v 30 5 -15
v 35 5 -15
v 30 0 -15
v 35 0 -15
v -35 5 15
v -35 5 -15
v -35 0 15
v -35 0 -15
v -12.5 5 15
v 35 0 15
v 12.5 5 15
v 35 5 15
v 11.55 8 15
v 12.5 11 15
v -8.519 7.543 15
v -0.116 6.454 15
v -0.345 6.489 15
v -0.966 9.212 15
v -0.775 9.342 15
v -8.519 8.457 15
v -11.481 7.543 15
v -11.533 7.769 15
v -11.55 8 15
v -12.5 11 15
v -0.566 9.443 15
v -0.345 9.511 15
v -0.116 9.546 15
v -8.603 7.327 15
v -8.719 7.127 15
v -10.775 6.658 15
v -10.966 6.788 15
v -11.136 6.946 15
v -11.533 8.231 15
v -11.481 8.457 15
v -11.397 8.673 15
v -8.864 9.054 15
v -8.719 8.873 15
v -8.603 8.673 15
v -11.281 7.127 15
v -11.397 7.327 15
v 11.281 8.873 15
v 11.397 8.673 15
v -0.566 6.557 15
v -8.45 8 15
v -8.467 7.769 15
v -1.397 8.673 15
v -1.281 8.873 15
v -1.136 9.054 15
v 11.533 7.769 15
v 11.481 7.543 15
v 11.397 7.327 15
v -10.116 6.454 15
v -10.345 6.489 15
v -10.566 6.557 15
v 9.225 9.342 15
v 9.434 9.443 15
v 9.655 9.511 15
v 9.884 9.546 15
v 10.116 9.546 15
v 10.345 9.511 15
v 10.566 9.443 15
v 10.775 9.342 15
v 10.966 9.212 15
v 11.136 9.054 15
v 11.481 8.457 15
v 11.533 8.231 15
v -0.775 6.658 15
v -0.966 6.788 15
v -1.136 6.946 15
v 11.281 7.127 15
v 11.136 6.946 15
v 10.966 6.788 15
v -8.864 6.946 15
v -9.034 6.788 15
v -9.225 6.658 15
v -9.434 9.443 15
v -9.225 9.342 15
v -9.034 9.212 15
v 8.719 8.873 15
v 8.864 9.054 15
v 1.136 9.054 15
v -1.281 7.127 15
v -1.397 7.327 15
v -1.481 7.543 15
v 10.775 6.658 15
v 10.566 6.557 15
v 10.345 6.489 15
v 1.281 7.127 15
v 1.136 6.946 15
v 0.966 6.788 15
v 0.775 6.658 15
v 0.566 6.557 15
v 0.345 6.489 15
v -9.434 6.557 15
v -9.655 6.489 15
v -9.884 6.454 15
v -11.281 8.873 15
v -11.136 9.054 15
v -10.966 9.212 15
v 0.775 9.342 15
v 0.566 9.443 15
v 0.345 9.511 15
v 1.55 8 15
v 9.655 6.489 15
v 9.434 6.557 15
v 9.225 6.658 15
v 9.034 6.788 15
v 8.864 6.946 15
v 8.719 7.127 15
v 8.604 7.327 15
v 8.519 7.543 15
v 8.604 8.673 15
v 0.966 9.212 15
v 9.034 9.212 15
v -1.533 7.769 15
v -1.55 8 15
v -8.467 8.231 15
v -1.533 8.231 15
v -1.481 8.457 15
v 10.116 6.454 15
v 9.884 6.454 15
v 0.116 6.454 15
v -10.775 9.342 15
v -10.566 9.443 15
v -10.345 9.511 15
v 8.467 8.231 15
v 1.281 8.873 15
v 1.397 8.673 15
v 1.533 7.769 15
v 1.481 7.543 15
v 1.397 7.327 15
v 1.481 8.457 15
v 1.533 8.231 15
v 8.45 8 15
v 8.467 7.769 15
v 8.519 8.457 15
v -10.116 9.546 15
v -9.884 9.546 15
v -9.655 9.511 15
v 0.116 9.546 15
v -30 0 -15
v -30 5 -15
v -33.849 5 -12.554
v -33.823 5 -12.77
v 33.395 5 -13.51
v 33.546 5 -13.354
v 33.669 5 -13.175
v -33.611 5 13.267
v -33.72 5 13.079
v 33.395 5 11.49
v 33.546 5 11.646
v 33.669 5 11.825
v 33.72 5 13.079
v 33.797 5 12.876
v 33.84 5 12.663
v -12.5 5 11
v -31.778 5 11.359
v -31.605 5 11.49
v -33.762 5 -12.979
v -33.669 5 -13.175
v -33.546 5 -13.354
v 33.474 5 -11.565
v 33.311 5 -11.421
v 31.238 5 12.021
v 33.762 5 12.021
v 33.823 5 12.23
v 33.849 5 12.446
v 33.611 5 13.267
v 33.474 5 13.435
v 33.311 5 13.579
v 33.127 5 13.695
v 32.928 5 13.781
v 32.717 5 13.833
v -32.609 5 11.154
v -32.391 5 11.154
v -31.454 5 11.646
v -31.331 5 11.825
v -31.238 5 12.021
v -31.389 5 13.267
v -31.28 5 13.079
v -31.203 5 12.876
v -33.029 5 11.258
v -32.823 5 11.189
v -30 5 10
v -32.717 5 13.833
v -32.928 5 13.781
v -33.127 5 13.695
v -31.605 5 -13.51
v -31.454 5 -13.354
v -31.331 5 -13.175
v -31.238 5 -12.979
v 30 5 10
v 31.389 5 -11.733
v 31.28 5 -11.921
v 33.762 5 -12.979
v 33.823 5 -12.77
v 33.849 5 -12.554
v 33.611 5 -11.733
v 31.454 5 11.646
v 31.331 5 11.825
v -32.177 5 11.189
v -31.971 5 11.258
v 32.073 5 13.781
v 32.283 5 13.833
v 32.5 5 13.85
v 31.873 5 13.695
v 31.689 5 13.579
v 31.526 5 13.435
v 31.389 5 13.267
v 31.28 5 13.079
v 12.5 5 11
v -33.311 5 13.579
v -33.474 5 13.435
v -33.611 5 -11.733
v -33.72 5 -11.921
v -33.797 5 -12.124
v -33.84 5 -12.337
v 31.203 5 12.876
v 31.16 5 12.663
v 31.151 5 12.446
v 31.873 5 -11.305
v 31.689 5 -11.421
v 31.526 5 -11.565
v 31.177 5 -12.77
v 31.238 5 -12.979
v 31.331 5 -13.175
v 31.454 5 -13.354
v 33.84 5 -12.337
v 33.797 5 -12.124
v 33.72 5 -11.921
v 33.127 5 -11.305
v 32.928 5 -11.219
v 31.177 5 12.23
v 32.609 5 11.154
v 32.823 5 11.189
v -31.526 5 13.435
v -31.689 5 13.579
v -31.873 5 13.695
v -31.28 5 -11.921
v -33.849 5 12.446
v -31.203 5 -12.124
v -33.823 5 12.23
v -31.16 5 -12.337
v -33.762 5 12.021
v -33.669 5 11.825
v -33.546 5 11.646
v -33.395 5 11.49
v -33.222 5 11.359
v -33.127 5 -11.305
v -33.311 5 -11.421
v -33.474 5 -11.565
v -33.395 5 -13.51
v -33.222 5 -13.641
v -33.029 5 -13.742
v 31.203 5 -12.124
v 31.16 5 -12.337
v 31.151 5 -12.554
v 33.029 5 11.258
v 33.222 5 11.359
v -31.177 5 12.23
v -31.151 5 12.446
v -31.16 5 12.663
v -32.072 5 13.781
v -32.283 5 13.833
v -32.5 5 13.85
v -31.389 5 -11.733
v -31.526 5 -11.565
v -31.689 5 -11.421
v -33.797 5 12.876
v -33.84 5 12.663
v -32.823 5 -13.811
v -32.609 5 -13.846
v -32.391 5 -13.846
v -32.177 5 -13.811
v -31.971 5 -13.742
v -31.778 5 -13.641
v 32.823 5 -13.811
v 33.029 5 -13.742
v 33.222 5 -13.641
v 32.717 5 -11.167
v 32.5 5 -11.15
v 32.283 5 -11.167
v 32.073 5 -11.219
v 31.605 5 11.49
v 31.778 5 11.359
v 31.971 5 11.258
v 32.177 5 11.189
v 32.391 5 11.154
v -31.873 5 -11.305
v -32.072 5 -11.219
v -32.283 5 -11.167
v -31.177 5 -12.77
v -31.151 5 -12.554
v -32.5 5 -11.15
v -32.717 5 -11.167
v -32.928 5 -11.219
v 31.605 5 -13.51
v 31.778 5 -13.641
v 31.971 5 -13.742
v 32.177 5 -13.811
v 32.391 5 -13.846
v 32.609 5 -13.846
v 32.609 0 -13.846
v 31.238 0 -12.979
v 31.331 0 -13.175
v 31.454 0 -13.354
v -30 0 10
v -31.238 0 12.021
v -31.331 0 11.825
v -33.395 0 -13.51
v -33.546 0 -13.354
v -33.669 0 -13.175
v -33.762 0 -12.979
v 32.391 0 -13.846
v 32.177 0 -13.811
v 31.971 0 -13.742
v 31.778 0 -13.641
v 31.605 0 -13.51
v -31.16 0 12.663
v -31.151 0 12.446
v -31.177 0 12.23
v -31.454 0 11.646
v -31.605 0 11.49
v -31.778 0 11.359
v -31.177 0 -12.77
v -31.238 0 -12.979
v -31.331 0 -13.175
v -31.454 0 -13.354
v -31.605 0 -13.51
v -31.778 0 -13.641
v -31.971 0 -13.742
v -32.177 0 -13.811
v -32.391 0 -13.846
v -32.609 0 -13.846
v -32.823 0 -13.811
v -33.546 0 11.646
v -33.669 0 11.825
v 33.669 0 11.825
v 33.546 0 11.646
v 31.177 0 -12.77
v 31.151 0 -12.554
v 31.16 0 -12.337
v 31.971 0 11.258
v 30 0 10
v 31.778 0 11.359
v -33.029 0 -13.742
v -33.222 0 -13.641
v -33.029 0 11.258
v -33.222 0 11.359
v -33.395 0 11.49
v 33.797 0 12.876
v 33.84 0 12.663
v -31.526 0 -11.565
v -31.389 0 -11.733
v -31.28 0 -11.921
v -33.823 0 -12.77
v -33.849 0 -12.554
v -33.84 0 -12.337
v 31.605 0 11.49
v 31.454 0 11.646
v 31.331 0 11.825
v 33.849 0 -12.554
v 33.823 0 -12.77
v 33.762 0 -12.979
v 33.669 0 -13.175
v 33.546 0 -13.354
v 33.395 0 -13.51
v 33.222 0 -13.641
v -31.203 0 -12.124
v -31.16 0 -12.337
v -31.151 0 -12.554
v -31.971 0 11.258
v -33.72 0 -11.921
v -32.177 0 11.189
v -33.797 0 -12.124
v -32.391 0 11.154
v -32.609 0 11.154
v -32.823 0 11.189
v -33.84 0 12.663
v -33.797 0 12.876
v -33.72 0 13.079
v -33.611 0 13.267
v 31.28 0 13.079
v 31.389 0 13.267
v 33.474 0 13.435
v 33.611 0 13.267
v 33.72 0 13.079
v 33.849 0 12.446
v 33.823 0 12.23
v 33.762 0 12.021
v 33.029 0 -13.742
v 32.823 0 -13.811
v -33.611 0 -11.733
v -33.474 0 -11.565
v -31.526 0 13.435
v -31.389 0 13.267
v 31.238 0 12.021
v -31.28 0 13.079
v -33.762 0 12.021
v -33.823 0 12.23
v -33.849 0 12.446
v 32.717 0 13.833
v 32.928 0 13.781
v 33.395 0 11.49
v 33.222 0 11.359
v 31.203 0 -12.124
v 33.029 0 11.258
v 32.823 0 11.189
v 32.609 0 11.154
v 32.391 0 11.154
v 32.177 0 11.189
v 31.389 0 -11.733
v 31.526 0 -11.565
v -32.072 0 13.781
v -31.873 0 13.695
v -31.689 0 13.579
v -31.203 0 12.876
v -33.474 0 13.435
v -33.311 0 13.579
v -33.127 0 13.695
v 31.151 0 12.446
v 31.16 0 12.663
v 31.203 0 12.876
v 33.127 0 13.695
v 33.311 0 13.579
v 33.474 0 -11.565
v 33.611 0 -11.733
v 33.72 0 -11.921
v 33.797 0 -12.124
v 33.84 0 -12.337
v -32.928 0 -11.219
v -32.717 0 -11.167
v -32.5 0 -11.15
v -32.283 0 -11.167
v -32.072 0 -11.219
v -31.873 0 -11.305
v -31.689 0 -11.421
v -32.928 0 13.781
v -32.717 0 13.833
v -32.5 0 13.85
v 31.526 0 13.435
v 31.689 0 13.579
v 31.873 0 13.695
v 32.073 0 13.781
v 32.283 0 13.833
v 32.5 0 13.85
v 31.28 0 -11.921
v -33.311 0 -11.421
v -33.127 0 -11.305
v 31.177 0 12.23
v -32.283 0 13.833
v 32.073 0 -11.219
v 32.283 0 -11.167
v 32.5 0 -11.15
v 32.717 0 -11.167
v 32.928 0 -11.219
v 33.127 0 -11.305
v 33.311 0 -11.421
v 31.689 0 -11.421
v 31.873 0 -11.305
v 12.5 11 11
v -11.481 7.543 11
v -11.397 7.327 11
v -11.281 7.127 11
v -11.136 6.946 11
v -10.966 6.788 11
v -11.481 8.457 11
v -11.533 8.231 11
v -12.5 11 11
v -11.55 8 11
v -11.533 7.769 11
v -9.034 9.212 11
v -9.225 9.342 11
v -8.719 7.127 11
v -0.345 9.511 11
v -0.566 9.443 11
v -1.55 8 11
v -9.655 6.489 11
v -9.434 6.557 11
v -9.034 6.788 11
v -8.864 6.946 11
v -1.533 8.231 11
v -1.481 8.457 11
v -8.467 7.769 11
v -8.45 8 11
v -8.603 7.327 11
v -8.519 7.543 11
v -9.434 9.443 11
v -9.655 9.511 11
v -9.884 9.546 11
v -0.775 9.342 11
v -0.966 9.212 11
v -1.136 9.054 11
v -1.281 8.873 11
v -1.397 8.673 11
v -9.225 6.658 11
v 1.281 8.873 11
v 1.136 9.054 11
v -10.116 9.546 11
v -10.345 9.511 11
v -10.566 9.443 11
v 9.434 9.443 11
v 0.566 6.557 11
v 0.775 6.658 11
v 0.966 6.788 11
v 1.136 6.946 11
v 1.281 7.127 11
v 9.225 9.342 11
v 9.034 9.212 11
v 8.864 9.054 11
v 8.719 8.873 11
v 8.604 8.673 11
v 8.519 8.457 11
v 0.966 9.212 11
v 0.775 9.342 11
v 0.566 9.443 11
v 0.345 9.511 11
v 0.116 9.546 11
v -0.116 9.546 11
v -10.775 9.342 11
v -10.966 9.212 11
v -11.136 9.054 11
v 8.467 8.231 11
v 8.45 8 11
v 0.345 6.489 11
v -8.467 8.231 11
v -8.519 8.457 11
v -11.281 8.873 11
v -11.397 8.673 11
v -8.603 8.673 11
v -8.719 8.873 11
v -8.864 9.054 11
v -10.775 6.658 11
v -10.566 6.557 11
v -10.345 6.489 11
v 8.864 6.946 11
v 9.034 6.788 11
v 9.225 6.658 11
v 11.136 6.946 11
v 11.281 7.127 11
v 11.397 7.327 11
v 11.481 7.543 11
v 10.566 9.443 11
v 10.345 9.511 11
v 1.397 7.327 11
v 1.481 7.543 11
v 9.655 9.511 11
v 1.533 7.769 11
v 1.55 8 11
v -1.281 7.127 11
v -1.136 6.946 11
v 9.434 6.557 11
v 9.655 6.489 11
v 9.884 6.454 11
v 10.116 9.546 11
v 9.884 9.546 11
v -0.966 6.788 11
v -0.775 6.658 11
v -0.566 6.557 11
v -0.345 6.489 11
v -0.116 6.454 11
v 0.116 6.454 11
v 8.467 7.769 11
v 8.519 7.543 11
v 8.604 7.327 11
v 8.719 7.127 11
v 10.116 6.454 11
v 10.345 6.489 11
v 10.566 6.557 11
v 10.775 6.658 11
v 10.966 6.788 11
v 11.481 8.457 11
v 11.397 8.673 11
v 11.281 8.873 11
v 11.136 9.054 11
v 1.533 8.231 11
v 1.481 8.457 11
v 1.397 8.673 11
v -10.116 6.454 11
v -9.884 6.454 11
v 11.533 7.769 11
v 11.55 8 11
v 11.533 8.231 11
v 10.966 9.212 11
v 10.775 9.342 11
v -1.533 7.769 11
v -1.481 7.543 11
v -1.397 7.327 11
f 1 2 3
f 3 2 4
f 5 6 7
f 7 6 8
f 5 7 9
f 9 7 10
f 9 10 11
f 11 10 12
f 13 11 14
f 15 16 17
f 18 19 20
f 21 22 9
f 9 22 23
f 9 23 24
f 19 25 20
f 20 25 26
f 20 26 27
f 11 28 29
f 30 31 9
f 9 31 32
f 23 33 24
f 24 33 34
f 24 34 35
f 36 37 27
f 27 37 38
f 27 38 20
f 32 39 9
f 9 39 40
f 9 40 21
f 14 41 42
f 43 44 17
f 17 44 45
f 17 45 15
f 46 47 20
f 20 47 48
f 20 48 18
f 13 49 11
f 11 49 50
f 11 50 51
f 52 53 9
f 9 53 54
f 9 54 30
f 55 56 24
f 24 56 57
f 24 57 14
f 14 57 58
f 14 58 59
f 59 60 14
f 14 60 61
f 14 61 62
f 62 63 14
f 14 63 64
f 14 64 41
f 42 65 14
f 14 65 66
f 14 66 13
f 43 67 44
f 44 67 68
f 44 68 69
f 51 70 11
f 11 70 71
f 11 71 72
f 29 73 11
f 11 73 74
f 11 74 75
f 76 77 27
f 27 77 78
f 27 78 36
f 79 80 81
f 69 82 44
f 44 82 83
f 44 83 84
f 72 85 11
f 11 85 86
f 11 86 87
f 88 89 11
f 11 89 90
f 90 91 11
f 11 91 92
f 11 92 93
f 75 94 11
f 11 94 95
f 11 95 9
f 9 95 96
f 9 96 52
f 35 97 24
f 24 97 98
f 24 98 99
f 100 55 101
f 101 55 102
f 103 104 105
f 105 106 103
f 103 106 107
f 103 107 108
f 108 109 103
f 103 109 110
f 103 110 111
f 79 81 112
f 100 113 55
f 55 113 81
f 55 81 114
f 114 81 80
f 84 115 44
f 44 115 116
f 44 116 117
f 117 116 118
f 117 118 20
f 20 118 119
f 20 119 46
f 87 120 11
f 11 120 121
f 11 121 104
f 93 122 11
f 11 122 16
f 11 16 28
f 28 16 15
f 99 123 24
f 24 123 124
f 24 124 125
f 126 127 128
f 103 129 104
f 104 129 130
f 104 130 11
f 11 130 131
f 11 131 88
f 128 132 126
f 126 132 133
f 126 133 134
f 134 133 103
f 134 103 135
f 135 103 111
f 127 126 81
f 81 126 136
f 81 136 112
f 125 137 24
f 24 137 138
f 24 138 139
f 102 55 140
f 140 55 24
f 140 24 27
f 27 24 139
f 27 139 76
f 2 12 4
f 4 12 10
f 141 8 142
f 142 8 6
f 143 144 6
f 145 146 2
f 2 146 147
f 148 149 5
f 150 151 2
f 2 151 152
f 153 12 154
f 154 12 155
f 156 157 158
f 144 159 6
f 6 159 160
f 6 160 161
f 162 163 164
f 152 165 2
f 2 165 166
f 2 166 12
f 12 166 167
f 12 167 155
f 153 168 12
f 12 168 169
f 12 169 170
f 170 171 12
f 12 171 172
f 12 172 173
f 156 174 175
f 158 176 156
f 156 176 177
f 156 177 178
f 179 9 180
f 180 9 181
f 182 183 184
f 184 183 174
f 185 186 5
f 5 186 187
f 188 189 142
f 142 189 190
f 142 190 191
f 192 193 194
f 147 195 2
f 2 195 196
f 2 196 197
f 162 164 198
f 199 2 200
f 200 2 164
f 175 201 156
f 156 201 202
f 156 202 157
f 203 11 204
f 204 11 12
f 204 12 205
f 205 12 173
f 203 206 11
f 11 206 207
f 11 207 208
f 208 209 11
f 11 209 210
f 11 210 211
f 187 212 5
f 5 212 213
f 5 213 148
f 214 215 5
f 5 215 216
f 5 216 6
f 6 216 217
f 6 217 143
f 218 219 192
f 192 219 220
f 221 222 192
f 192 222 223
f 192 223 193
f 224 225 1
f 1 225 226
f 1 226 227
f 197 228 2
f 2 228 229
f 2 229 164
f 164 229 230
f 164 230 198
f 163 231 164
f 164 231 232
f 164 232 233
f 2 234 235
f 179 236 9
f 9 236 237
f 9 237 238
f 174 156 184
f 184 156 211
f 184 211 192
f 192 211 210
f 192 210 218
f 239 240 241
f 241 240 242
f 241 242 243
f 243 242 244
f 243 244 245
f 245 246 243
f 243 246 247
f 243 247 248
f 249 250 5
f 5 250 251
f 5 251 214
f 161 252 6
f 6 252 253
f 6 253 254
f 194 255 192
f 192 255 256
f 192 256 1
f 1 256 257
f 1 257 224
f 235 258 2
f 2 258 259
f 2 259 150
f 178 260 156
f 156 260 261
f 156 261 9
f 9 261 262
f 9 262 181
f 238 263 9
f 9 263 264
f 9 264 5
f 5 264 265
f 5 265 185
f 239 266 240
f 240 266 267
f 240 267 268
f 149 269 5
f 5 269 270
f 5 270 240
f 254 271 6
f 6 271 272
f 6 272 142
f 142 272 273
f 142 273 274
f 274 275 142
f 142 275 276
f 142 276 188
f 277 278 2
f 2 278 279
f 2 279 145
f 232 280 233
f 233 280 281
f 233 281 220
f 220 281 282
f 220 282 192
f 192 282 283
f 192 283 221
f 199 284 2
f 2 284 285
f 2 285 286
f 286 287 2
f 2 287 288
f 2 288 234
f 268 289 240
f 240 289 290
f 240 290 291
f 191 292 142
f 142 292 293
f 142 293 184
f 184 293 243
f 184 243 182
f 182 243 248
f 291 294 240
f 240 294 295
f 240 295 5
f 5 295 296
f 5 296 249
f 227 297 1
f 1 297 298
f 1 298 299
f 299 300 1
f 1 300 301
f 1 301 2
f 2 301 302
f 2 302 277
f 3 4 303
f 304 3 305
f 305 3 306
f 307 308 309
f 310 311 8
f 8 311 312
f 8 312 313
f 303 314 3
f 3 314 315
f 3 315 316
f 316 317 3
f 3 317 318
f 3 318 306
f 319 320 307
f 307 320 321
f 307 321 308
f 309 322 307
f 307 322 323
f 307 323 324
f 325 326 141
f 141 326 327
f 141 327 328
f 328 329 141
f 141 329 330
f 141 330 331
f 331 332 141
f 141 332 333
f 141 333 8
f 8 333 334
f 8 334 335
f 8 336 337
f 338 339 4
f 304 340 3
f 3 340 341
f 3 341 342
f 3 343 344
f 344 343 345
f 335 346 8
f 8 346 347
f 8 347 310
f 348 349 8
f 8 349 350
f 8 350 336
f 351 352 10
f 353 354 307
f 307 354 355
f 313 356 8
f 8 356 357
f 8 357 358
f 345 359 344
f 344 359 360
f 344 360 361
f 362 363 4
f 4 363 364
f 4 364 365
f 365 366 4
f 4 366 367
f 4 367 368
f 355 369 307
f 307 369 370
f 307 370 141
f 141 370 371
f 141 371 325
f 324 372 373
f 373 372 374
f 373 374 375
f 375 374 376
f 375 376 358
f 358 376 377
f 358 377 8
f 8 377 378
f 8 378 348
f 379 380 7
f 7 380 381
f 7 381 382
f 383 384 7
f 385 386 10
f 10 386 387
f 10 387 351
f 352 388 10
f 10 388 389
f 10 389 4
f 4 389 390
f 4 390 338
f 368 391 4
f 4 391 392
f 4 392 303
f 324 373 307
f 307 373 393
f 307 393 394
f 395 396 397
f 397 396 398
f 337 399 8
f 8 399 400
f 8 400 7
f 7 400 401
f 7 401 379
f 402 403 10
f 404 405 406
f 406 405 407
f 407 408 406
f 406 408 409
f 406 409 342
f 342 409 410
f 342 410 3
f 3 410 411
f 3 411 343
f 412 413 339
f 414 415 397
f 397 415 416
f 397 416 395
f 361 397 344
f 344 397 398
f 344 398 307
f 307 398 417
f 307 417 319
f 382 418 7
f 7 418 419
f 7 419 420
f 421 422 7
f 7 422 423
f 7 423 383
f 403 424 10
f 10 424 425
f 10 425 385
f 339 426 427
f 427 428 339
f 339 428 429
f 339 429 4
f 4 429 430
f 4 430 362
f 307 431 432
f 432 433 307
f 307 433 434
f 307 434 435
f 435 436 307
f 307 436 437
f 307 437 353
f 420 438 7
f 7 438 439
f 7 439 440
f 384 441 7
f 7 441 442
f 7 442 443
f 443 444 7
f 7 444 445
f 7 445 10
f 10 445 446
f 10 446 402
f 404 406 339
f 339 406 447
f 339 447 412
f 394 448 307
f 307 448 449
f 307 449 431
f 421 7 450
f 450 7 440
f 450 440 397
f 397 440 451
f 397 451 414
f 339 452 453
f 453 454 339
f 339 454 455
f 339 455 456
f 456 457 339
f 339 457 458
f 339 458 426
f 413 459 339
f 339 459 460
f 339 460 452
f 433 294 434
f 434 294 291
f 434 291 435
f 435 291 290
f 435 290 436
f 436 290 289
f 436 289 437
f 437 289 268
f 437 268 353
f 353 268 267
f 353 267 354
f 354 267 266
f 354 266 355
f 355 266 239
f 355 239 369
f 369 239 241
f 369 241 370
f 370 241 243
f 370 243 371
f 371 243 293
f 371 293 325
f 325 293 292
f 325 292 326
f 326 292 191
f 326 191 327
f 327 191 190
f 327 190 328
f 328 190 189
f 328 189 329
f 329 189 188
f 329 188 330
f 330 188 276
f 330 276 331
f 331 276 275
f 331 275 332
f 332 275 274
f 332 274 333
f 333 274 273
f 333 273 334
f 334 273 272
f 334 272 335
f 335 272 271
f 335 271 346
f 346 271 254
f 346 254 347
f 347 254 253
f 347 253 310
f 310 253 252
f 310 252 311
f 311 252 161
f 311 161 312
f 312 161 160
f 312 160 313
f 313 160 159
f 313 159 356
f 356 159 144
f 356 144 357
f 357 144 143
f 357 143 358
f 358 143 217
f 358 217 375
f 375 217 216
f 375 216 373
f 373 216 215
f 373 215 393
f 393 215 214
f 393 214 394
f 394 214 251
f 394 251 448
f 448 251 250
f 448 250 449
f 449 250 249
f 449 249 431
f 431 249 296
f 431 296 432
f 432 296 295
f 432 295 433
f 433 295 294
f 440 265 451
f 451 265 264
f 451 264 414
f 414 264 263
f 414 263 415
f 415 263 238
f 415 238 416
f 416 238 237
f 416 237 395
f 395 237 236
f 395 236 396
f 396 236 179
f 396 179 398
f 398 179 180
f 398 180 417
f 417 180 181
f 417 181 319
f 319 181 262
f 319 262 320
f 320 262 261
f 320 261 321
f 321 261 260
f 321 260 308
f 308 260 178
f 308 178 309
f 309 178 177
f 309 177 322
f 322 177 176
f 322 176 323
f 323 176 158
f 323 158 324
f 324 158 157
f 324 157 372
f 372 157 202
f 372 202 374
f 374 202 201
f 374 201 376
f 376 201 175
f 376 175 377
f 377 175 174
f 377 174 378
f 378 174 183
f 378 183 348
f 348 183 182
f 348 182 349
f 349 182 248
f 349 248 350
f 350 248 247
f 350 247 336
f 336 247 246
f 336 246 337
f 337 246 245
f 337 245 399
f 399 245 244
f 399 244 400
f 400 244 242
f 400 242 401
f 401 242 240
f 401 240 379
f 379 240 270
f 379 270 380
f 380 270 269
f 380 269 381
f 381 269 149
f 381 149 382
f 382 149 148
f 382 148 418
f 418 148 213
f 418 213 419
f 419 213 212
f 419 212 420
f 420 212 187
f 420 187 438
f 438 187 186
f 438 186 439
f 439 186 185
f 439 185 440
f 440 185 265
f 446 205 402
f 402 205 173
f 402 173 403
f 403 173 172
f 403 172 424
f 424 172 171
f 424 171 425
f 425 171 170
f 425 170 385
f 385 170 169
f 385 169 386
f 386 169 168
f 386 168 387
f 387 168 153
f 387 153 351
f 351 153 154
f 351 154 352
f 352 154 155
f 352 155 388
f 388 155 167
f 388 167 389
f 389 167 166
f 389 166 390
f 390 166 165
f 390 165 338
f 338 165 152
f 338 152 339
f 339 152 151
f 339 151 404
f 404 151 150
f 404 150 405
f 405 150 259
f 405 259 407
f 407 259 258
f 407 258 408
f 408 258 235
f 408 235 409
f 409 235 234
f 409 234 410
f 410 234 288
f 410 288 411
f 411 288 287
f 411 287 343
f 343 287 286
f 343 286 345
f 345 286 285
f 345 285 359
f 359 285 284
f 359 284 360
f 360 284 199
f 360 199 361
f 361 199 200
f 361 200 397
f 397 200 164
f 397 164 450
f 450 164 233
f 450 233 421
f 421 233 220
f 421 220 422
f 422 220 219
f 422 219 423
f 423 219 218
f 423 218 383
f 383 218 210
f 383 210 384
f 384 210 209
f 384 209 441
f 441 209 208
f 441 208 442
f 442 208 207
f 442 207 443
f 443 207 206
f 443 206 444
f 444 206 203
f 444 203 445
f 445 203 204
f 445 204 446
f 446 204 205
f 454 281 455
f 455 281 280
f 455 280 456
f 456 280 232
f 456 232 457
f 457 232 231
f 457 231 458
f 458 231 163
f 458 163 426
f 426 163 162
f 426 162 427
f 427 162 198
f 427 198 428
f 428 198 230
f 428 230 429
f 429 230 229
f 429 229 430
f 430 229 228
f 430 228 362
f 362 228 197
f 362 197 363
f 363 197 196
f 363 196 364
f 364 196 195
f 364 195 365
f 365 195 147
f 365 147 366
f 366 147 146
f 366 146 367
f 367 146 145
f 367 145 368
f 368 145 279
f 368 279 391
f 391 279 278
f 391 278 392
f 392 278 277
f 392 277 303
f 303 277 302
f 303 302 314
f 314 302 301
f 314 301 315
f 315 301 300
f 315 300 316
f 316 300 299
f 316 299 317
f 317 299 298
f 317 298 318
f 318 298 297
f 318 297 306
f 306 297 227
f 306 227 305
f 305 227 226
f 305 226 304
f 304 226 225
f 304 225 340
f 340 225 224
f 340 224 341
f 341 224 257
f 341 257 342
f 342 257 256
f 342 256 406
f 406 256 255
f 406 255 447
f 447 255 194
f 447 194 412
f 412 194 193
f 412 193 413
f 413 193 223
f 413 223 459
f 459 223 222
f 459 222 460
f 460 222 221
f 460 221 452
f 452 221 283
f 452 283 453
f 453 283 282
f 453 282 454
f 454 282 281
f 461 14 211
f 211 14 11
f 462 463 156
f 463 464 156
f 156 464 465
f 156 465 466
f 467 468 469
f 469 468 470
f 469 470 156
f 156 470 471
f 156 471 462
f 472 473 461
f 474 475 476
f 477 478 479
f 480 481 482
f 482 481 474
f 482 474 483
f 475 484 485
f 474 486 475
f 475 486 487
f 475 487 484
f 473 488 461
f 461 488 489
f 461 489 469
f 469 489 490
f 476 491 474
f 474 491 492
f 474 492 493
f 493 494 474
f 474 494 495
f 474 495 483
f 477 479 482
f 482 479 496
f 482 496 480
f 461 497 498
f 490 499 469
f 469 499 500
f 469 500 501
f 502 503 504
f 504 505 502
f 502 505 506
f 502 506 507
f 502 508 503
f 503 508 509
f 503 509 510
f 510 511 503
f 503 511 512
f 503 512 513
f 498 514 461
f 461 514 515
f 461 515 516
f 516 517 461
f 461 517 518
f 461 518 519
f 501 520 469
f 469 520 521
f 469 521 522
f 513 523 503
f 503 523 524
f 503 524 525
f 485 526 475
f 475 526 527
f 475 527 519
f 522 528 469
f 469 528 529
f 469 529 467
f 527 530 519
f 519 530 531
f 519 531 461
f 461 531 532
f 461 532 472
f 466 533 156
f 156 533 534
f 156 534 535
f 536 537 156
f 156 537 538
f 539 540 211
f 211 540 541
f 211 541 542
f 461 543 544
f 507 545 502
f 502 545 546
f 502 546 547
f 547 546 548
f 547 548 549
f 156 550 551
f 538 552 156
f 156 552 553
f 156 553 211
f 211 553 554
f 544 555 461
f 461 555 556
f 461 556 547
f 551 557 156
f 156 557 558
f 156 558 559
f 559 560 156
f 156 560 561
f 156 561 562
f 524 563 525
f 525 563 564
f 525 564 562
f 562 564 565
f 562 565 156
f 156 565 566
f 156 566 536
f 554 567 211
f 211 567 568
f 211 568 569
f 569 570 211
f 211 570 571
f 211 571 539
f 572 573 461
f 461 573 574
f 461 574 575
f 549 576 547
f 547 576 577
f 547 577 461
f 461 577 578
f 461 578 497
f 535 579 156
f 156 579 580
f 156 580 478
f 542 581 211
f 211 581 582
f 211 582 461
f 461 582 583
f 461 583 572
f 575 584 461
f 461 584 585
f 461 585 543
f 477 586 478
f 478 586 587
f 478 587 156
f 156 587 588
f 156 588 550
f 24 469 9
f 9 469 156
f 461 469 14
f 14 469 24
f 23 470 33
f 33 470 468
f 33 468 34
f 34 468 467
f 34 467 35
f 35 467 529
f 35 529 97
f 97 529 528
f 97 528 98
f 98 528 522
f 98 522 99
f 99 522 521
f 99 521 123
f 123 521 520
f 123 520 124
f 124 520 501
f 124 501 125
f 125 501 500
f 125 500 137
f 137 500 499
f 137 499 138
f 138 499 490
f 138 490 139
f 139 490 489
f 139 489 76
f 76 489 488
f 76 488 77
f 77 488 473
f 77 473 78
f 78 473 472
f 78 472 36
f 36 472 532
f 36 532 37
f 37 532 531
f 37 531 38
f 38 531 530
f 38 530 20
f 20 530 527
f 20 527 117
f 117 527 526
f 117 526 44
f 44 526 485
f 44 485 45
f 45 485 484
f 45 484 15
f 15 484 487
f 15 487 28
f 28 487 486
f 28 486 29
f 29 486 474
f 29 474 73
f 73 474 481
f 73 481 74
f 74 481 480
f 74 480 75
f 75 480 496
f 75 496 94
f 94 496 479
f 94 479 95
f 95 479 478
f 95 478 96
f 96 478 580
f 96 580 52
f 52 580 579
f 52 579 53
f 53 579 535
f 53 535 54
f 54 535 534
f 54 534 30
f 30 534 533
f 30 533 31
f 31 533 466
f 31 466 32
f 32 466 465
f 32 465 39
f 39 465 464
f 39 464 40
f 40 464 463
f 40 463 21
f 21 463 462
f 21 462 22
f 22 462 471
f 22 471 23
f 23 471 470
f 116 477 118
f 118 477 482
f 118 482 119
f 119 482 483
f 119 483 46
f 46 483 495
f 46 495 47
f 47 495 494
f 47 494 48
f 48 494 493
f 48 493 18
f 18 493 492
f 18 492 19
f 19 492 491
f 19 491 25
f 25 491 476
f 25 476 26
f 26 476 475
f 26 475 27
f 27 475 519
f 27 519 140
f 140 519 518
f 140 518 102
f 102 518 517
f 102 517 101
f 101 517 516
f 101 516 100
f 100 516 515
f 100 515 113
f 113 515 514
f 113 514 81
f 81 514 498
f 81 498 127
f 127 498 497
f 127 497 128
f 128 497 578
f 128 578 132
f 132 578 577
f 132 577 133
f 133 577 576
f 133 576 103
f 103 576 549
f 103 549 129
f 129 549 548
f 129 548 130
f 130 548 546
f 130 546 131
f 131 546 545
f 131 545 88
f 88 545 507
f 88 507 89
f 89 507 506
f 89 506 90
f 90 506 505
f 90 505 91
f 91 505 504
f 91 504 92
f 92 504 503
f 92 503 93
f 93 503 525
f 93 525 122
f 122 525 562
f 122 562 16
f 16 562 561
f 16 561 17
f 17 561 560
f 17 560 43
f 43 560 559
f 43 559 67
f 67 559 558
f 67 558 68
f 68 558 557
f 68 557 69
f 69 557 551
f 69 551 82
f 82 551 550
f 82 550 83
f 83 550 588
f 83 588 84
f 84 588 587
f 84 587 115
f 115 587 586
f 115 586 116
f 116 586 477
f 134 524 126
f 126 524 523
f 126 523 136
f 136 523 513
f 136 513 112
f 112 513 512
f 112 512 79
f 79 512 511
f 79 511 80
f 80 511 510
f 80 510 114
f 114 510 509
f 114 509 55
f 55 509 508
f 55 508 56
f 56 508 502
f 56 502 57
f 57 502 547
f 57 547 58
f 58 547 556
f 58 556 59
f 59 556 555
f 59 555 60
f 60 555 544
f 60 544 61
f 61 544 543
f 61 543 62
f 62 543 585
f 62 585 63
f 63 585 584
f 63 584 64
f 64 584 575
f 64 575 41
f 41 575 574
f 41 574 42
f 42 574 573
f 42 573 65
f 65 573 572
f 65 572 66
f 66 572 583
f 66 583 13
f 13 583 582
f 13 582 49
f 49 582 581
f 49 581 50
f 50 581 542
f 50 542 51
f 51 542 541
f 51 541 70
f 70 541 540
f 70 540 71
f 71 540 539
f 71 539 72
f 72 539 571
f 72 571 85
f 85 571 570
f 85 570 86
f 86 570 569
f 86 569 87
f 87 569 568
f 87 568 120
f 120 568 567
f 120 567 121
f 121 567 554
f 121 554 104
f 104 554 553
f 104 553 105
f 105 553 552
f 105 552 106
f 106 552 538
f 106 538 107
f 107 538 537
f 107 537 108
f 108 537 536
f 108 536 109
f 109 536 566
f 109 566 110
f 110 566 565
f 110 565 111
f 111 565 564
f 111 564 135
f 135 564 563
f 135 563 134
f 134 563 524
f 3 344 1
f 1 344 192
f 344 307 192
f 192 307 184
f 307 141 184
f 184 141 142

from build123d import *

# Parameters (mm, degrees)
SKETCH1_W           = 70
SKETCH1_H           = 30
BOSS_EXTRUDE1_DEPTH = 5
SKETCH2_R           = 1.35
CUT_EXTRUDE1_DEPTH  = 6
SKETCH3_W           = 25
SKETCH3_H           = 4
BOSS_EXTRUDE2_DEPTH = 6
SKETCH4_R           = 1.55
CUT_EXTRUDE2_DEPTH  = 5
SKETCH5_W           = 60
SKETCH5_H           = 25
CUT_EXTRUDE3_DEPTH  = 6


with BuildPart() as part:
    # Sketch1 → Boss-Extrude1 (new body)
    with BuildSketch(Plane(origin=(0, 0, 0), x_dir=(1, 0, 0), z_dir=(0, 1, 0))):
        Rectangle(SKETCH1_W, SKETCH1_H)
    extrude(amount=BOSS_EXTRUDE1_DEPTH)

    # Sketch2 → Cut-Extrude1 (cut, through all)
    with BuildSketch(Plane(origin=(0, 5, 0), x_dir=(1, 0, 0), z_dir=(0, 1, 0))):
        with Locations((-32.5, 12.5)):
            Circle(SKETCH2_R)
        with Locations((32.5, 12.5)):
            Circle(SKETCH2_R)
        with Locations((-32.5, -12.5)):
            Circle(SKETCH2_R)
        with Locations((32.5, -12.5)):
            Circle(SKETCH2_R)
    extrude(amount=-CUT_EXTRUDE1_DEPTH, mode=Mode.SUBTRACT)

    # Sketch3 → Boss-Extrude2 (add)
    with BuildSketch(Plane(origin=(0, 5, 0), x_dir=(1, 0, 0), z_dir=(0, 1, 0))):
        with Locations((0, -13)):
            Rectangle(SKETCH3_W, SKETCH3_H)
    extrude(amount=BOSS_EXTRUDE2_DEPTH)

    # Sketch4 → Cut-Extrude2 (cut, through all)
    with BuildSketch(Plane(origin=(0, 0, 11), x_dir=(-1, 0, 0), z_dir=(0, 0, -1))):
        with Locations((-10, 8)):
            Circle(SKETCH4_R)
        with Locations((0, 8)):
            Circle(SKETCH4_R)
        with Locations((10, 8)):
            Circle(SKETCH4_R)
    extrude(amount=-CUT_EXTRUDE2_DEPTH, mode=Mode.SUBTRACT)

    # Sketch5 → Cut-Extrude3 (cut, through all)
    with BuildSketch(Plane(origin=(0, 5, 0), x_dir=(1, 0, 0), z_dir=(0, 1, 0))):
        with Locations((0, 2.5)):
            Rectangle(SKETCH5_W, SKETCH5_H)
    extrude(amount=-CUT_EXTRUDE3_DEPTH, mode=Mode.SUBTRACT)


solid = part.part
